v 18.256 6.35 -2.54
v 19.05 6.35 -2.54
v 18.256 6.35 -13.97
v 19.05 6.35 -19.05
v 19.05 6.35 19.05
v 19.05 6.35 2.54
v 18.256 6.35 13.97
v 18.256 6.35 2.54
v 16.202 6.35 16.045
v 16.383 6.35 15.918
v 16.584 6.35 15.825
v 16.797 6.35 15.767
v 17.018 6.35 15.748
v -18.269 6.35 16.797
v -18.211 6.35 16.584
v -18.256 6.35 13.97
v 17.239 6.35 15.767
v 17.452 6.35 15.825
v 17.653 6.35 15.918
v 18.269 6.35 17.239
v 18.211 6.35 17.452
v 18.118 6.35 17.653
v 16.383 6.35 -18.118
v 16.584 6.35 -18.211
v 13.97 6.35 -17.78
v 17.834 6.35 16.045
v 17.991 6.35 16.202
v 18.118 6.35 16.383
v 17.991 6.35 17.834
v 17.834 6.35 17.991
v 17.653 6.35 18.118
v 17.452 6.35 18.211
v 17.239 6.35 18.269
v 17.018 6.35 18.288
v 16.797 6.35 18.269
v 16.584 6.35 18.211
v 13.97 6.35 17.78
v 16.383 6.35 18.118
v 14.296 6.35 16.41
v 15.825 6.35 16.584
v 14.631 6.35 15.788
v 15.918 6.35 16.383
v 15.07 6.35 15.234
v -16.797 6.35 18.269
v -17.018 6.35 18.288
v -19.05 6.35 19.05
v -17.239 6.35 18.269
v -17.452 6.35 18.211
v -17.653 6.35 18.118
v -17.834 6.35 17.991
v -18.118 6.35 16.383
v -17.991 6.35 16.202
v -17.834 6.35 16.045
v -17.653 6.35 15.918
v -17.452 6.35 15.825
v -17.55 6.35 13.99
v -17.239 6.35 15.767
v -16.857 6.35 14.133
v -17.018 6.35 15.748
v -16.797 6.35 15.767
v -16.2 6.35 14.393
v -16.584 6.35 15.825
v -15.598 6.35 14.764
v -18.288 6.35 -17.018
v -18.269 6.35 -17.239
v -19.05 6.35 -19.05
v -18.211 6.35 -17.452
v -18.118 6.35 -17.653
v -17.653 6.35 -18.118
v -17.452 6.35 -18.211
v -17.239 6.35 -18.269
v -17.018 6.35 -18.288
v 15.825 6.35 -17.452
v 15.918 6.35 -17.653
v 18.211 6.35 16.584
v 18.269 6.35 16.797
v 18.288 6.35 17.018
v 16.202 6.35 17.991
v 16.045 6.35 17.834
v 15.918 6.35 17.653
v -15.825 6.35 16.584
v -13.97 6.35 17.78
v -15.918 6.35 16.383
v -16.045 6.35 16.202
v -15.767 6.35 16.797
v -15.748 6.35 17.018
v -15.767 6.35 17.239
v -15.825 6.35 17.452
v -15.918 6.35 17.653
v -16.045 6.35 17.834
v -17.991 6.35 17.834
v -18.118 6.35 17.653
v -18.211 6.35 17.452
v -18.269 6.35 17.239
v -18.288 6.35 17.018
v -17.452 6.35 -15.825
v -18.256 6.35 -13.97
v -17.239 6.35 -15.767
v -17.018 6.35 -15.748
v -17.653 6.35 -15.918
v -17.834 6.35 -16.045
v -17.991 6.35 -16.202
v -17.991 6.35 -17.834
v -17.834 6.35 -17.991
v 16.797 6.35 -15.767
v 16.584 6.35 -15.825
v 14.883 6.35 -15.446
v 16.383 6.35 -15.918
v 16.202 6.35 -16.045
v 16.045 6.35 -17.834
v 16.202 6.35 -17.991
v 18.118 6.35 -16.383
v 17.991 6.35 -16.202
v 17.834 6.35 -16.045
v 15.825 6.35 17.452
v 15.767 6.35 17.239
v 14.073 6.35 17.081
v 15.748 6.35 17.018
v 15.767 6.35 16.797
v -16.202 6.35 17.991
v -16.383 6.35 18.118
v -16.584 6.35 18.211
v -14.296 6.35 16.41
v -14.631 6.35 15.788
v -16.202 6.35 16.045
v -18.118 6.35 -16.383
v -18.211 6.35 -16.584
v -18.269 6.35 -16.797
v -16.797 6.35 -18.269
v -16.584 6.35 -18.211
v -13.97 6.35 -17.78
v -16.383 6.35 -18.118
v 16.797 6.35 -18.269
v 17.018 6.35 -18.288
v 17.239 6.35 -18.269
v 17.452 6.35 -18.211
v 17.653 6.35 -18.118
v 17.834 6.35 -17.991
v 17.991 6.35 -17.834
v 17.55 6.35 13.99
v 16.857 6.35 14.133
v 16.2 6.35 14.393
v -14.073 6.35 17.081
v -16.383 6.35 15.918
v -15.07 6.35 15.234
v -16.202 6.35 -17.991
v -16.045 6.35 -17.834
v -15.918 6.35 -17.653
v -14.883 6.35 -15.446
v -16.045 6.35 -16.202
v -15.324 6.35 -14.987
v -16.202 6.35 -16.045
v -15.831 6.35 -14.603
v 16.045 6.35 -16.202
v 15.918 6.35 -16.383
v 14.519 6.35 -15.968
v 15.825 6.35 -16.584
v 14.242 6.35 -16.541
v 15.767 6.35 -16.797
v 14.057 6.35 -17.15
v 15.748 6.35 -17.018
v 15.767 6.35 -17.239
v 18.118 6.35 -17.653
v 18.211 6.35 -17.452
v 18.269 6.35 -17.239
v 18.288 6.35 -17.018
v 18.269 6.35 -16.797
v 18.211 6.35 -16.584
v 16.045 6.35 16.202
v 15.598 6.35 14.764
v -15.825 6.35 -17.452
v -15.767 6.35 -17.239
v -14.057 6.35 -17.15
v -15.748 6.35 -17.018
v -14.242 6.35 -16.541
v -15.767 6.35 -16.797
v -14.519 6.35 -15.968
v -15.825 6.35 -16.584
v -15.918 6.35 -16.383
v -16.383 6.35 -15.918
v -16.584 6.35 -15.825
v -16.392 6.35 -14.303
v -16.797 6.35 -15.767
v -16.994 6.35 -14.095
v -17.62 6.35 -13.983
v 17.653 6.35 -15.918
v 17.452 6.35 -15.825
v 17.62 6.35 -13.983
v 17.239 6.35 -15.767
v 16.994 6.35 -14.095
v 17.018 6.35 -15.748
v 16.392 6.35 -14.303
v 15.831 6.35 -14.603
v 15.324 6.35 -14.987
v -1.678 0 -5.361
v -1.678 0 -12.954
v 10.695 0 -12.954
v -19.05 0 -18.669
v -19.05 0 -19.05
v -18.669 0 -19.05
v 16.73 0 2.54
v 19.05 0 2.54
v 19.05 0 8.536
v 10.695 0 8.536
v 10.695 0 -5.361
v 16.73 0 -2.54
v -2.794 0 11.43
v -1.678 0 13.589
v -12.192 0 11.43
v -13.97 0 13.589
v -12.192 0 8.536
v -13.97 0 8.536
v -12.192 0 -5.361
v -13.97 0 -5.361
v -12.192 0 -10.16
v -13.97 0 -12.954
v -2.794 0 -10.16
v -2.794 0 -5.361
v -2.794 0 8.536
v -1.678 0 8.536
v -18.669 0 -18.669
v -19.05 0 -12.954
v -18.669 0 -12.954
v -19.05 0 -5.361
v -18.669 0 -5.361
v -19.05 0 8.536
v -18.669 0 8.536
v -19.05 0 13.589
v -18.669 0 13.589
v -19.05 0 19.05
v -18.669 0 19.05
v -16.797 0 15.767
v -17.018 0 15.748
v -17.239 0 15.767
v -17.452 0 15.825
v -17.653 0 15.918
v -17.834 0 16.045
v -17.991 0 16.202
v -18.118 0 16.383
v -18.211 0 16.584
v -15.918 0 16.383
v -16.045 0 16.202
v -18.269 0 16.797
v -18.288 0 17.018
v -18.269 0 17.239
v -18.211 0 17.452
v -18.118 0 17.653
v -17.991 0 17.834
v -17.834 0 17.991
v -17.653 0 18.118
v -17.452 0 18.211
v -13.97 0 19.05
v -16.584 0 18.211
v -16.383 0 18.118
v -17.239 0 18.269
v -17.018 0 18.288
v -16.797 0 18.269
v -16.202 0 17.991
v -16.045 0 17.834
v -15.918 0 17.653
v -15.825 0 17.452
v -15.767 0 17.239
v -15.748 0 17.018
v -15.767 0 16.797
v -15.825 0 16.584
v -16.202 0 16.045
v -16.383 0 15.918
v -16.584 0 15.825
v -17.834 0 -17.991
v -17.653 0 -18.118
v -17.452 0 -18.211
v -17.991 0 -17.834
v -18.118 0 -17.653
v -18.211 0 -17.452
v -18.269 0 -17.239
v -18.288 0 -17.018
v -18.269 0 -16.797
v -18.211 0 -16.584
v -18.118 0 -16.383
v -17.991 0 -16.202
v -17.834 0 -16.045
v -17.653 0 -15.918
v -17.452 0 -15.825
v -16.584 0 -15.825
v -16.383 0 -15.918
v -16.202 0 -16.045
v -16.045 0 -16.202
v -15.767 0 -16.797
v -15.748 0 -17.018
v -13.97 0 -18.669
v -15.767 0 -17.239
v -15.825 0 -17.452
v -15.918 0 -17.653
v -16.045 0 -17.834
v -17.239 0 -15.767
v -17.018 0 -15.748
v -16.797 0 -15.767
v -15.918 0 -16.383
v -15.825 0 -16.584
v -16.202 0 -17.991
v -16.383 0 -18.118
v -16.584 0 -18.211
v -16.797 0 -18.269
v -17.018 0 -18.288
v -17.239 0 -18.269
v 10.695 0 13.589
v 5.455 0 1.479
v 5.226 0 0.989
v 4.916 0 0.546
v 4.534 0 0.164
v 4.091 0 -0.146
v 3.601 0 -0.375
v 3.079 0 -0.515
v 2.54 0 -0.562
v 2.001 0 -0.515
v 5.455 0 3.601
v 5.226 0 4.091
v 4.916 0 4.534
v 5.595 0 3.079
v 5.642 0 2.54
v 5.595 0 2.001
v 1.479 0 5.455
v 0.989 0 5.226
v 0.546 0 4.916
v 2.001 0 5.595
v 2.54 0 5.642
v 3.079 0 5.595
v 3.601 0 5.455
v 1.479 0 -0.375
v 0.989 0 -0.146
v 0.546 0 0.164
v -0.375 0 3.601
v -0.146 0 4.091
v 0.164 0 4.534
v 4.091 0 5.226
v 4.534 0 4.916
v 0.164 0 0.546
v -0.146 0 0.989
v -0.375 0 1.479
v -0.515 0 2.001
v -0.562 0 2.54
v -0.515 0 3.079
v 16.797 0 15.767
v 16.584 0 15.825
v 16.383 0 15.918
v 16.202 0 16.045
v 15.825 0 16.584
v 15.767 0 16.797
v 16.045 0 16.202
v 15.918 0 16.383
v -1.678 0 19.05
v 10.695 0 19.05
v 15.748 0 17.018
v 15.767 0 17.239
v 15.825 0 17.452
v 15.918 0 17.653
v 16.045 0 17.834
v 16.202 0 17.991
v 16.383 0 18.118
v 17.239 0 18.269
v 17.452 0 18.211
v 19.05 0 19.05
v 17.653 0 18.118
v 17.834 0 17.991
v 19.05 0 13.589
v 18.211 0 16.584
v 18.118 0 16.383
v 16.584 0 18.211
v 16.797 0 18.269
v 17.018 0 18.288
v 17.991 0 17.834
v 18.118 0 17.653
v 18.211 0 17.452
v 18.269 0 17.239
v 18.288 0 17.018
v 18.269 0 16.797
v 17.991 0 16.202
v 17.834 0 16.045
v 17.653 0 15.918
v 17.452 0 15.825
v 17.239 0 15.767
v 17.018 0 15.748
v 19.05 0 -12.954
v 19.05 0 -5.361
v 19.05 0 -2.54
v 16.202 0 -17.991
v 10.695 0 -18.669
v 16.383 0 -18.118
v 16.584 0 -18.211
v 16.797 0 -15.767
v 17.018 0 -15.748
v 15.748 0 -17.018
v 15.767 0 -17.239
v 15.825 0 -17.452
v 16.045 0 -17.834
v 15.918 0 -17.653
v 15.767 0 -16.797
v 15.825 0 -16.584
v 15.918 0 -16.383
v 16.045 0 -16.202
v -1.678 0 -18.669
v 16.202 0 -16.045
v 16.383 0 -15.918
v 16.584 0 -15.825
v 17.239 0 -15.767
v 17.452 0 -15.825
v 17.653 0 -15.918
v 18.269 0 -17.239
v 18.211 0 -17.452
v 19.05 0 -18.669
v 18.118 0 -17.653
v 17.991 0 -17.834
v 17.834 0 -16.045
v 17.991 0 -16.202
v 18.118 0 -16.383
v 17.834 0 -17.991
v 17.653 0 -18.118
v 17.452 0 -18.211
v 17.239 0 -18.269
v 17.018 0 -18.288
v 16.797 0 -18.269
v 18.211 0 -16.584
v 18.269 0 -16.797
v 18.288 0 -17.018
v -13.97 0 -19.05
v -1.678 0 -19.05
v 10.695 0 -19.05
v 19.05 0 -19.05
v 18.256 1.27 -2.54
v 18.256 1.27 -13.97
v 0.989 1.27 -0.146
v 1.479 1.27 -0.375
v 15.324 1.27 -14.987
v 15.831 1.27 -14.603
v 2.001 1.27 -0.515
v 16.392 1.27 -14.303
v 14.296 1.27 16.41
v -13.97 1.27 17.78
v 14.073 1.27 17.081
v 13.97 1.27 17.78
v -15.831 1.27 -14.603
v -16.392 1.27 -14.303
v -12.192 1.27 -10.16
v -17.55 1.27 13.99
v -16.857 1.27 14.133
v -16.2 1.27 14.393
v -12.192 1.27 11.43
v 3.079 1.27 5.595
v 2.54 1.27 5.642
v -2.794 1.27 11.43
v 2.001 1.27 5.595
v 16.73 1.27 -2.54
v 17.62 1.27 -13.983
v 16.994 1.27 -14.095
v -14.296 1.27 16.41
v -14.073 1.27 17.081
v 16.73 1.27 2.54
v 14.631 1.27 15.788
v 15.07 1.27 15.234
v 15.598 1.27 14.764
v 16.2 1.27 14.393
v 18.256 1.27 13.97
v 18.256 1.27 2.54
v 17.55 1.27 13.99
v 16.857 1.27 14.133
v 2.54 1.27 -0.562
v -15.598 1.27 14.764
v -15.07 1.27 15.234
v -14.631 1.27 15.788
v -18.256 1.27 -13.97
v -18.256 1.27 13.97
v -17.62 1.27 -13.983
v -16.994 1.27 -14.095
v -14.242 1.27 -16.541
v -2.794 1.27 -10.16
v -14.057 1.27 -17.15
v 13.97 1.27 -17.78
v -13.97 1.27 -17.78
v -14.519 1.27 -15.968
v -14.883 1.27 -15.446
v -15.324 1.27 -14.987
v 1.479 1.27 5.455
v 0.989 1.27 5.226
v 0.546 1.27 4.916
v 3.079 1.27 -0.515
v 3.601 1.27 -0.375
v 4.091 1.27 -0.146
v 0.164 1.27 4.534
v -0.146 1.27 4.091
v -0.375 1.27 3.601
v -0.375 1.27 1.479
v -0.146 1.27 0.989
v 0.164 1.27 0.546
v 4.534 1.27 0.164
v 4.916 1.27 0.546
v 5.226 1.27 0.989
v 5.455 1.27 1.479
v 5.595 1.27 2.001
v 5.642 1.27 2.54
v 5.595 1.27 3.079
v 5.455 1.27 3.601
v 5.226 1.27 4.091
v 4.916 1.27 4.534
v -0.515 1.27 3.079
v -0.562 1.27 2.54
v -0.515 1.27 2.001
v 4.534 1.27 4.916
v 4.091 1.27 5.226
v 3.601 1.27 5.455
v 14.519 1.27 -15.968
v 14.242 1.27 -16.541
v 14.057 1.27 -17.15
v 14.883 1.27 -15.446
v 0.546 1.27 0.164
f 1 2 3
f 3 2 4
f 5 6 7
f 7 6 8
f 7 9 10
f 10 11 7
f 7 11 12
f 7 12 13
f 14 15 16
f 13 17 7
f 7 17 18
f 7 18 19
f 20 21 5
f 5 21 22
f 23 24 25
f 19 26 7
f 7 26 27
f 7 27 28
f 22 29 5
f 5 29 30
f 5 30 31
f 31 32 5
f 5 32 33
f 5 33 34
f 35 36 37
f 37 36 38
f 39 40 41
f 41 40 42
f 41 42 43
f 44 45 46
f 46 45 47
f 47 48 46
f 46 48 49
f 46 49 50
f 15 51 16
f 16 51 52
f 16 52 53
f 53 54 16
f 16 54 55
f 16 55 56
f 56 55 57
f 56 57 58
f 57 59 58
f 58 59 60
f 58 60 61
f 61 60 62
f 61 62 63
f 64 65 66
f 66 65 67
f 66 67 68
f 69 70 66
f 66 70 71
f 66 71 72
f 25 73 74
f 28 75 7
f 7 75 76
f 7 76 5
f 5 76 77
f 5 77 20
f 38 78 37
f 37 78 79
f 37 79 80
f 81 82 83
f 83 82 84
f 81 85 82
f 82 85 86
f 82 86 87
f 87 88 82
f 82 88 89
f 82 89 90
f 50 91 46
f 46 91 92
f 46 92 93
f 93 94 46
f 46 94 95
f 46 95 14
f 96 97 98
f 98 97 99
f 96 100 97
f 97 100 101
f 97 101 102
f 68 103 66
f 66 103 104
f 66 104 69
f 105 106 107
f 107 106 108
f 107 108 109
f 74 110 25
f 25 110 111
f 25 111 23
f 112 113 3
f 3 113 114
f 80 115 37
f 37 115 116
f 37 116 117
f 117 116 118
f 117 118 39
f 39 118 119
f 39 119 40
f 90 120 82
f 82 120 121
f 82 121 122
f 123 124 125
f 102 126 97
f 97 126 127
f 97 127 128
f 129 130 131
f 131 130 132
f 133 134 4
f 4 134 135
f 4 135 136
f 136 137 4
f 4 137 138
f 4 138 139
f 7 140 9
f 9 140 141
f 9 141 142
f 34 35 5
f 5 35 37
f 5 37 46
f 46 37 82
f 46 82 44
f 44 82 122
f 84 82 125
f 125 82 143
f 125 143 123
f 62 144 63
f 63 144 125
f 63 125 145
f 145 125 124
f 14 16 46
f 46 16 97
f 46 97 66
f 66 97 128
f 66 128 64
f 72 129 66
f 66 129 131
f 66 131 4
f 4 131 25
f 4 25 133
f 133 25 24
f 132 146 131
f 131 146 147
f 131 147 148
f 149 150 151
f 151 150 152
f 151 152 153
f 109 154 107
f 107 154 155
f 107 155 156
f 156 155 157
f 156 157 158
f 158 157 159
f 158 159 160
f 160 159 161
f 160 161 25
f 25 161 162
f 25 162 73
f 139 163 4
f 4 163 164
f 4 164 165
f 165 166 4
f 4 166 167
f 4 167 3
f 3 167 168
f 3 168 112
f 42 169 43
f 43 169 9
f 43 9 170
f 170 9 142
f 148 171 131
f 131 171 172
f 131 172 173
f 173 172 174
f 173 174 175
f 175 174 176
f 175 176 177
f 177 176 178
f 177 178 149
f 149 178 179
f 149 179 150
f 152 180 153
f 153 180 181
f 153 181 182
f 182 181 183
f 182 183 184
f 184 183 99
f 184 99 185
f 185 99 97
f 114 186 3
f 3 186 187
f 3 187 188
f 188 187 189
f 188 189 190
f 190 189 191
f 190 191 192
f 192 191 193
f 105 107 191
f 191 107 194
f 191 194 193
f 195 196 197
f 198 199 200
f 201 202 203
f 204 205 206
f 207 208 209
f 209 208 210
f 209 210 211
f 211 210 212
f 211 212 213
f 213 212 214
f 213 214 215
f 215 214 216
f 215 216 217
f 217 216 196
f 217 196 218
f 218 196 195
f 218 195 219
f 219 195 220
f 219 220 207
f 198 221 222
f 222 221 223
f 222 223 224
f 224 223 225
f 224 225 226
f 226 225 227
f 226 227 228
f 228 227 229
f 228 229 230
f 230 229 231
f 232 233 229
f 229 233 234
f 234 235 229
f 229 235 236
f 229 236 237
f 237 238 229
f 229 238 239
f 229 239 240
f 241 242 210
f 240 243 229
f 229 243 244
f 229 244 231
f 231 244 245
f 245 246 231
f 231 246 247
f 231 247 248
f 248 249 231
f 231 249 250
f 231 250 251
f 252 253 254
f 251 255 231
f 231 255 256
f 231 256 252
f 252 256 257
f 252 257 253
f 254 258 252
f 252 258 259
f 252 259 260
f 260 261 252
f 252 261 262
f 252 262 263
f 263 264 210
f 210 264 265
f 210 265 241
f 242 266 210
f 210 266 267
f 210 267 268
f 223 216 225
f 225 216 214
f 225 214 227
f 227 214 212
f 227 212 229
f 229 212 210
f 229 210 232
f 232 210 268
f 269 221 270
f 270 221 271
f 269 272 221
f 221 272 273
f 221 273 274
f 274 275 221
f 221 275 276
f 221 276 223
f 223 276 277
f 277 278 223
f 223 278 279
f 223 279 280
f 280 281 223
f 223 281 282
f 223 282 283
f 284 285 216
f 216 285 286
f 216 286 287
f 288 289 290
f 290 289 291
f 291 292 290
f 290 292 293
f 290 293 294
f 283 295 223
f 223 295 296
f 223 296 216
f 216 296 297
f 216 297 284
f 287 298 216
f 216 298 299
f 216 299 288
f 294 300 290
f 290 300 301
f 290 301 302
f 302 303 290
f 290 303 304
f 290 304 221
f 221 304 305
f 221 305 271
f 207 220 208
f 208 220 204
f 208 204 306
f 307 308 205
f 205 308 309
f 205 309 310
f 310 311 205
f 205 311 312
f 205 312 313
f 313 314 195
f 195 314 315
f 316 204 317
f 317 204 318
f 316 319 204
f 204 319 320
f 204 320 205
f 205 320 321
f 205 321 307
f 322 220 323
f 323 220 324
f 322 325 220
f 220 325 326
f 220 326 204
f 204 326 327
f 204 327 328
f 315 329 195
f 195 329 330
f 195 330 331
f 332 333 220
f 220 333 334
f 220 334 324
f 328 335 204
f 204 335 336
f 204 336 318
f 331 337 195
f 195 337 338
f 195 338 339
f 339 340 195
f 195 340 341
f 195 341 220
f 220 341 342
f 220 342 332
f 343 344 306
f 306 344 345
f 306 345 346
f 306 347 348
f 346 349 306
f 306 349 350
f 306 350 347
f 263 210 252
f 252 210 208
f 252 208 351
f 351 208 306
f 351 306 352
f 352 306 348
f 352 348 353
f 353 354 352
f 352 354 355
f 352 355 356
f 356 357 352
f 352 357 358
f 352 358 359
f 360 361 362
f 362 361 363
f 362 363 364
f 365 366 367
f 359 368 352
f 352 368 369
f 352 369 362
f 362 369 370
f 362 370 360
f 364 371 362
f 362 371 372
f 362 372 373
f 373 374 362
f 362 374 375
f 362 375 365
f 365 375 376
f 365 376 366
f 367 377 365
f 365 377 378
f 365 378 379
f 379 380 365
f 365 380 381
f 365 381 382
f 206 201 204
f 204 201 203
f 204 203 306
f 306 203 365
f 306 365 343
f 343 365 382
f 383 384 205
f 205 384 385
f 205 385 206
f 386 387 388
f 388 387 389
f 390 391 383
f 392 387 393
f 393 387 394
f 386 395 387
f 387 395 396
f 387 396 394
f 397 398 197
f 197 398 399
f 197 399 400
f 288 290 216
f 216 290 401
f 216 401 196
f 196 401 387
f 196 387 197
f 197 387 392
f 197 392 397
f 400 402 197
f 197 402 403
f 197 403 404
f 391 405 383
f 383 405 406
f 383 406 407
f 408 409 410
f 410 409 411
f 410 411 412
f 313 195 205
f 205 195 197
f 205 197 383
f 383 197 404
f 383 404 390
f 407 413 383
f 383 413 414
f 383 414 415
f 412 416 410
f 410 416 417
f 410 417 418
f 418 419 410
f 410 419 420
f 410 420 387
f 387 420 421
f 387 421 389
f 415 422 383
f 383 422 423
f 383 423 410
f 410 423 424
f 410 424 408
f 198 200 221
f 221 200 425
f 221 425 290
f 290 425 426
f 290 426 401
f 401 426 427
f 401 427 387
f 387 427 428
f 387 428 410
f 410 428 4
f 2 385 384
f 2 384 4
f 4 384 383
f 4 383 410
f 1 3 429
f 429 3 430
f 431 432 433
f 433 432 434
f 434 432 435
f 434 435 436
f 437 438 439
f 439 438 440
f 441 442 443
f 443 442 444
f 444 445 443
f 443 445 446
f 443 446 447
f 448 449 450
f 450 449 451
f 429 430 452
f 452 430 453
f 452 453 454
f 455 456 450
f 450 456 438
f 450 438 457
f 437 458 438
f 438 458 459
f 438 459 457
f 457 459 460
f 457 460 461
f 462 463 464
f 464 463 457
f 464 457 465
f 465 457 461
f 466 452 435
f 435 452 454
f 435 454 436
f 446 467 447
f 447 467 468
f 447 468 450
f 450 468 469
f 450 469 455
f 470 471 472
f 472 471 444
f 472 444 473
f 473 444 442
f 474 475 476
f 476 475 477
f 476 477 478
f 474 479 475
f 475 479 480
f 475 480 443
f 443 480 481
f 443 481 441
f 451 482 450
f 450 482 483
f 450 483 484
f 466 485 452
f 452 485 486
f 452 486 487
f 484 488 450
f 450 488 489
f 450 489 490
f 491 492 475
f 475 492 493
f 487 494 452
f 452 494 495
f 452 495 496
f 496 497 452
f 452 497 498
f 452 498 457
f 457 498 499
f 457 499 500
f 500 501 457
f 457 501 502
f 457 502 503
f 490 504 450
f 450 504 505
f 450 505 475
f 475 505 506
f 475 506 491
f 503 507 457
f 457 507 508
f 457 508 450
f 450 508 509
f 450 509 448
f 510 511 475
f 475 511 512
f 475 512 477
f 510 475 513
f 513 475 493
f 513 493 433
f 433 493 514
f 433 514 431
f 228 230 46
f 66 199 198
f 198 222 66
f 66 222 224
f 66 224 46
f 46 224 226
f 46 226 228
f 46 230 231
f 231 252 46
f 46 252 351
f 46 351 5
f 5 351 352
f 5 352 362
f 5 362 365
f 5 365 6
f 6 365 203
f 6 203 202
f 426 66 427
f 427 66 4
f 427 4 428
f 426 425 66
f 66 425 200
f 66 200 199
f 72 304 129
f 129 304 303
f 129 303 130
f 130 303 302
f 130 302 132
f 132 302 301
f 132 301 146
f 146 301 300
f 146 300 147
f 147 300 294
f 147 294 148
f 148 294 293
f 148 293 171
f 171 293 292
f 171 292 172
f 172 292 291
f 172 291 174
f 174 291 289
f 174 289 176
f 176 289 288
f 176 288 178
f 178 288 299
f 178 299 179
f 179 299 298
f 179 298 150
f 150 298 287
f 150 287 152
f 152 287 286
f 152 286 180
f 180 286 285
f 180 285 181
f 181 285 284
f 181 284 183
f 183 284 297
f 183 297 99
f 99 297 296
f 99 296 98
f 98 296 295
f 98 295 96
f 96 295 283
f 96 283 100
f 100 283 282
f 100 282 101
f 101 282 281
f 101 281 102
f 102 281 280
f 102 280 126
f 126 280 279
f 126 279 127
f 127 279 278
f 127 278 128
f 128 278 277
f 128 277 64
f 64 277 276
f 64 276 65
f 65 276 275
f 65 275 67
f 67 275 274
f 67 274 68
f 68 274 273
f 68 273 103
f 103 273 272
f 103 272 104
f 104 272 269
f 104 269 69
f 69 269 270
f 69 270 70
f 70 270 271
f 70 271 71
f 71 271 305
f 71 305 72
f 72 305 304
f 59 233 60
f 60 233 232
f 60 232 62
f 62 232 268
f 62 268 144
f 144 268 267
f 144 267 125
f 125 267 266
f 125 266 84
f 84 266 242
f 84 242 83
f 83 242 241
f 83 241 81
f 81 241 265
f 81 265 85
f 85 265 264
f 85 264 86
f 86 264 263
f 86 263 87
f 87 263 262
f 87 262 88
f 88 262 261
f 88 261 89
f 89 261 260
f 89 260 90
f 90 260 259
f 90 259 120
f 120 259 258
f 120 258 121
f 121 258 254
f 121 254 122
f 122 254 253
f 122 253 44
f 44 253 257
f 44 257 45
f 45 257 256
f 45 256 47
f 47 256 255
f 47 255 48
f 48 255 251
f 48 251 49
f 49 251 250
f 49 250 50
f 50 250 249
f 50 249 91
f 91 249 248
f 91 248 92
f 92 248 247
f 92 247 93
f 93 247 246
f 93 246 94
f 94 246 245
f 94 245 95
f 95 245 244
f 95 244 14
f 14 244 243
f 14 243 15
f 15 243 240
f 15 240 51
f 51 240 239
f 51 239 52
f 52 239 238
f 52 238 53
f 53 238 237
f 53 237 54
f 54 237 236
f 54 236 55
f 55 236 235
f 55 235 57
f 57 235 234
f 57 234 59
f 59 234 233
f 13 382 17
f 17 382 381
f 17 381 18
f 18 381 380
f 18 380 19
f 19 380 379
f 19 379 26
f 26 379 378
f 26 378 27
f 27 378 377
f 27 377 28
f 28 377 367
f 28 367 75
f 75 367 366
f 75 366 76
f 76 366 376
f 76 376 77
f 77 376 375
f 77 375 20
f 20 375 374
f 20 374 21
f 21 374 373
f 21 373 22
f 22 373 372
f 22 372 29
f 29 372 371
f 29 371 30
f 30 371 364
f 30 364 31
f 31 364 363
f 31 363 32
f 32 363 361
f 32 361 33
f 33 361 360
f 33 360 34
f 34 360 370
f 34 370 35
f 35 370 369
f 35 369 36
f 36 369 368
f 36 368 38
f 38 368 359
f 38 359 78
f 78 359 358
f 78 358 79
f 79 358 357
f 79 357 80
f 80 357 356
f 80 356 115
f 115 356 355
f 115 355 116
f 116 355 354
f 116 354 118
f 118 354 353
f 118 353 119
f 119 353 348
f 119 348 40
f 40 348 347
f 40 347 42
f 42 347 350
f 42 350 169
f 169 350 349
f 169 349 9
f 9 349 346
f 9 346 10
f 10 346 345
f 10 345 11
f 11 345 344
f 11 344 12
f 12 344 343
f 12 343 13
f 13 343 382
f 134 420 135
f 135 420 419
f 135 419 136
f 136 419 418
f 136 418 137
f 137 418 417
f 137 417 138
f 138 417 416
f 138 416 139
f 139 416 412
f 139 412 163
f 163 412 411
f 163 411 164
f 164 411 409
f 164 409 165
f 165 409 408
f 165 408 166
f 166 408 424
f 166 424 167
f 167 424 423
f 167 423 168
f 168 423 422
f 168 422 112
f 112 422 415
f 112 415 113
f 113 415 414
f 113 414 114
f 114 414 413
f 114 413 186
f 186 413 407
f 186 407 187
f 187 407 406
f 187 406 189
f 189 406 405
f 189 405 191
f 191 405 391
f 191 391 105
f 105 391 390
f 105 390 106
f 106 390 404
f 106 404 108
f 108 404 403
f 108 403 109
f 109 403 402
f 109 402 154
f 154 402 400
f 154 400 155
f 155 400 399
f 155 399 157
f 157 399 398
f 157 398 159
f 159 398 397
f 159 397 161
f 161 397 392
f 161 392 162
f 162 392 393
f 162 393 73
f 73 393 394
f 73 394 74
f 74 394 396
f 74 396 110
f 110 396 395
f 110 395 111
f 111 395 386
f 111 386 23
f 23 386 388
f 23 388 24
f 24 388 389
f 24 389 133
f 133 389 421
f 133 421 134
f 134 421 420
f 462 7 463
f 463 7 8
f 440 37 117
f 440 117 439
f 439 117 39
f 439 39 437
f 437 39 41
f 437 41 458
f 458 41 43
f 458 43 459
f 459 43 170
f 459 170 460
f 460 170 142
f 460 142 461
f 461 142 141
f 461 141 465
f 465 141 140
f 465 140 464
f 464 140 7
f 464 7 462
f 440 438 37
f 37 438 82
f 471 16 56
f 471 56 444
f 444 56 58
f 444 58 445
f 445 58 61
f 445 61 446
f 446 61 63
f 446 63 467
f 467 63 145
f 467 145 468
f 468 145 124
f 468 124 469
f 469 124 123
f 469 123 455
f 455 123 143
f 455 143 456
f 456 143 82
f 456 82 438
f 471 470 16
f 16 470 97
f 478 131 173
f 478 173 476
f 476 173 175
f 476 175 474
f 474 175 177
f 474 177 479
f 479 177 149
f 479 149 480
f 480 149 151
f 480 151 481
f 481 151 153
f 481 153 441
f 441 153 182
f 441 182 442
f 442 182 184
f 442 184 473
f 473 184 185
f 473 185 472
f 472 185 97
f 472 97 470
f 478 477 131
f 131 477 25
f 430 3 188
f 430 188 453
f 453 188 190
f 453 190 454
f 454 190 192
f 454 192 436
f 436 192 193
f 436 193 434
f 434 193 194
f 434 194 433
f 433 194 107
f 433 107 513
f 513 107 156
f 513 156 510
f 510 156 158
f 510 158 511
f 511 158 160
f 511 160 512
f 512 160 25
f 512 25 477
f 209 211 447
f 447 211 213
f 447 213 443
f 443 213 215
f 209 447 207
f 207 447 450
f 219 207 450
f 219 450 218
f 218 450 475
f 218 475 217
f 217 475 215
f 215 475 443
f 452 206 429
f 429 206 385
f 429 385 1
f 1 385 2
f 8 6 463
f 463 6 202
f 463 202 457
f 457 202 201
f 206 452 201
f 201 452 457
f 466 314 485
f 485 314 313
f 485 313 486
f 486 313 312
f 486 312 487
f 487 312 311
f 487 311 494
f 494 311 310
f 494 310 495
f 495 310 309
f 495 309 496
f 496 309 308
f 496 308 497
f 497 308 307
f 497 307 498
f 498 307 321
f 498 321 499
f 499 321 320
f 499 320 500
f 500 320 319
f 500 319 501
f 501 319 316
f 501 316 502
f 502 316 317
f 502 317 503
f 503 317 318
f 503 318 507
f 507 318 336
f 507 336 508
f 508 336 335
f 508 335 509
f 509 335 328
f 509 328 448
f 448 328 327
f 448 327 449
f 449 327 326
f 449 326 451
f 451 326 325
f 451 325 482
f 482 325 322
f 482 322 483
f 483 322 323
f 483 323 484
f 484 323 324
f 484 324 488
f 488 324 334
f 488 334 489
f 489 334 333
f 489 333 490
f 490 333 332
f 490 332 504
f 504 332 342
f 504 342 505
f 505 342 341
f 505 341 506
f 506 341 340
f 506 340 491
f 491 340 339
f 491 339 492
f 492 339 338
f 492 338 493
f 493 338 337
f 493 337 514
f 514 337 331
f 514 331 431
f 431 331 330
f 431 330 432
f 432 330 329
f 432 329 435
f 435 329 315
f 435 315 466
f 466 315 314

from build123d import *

# Parameters (mm, degrees)
SKETCH1_W           = 38.1
SKETCH1_H           = 38.1
SKETCH1_R           = 1.27
BOSS_EXTRUDE1_DEPTH = 6.35
CUT_EXTRUDE1_DEPTH  = 5.08
CUT_EXTRUDE2_REACH  = 29.679
SKETCH3_W           = 9.398
SKETCH3_H           = 21.59
SKETCH4_W           = 2.320401775
SKETCH4_H           = 5.08
SKETCH4_R           = 3.101894328
CUT_EXTRUDE3_DEPTH  = 28.679008291


with BuildPart() as part:
    # Sketch1 → Boss-Extrude1 (new body)
    with BuildSketch(Plane(origin=(0, 0, 0), x_dir=(1, 0, 0), z_dir=(0, 1, 0))):
        Rectangle(SKETCH1_W, SKETCH1_H)
        with Locations(Location((-17.018, 17.018, 0), (0, 0, 270))):
            Circle(SKETCH1_R, mode=Mode.SUBTRACT)
        with Locations(Location((-17.018, -17.018, 0), (0, 0, 90))):
            Circle(SKETCH1_R, mode=Mode.SUBTRACT)
        with Locations(Location((17.018, -17.018, 0), (0, 0, 270))):
            Circle(SKETCH1_R, mode=Mode.SUBTRACT)
        with Locations(Location((17.018, 17.018, 0), (0, 0, 90))):
            Circle(SKETCH1_R, mode=Mode.SUBTRACT)
    extrude(amount=BOSS_EXTRUDE1_DEPTH)

    # Sketch2 → Cut-Extrude1 (cut)
    with BuildSketch(Plane(origin=(0, 6.35, 0), x_dir=(1, 0, 0), z_dir=(0, 1, 0))):
        with BuildLine():
            Line((18.256262039, 13.97), (18.256262039, -13.97))
            ThreePointArc((18.256262039, -13.97), (15.324054183, -14.987286066), (13.97, -17.78))
            Line((13.97, -17.78), (-13.97, -17.78))
            ThreePointArc((-13.97, -17.78), (-15.324054183, -14.987286066), (-18.256262039, -13.97))
            Line((-18.256262039, -13.97), (-18.256262039, 13.97))
            ThreePointArc((-18.256262039, 13.97), (-15.324054183, 14.987286066), (-13.97, 17.78))
            Line((-13.97, 17.78), (13.97, 17.78))
            ThreePointArc((13.97, 17.78), (15.324054183, 14.987286066), (18.256262039, 13.97))
        make_face()
    extrude(amount=-CUT_EXTRUDE1_DEPTH, mode=Mode.SUBTRACT)

    # Sketch3 → Cut-Extrude2 (cut, up to next)
    with BuildSketch(Plane.XZ, mode=Mode.PRIVATE) as cut_extrude2_sk1:
        with Locations((-7.493, 0.635)):
            Rectangle(SKETCH3_W, SKETCH3_H)
    cut_extrude2_tool1 = extrude(cut_extrude2_sk1.sketch, amount=-CUT_EXTRUDE2_REACH, mode=Mode.PRIVATE) & part.part
    add(cut_extrude2_tool1.solids().sort_by_distance((-7.493, 0, 0.635))[0], mode=Mode.SUBTRACT)

    # Sketch4 → Cut-Extrude3 (cut, through all)
    with BuildSketch(Plane.XZ):
        with Locations((20.210200888, 0)):
            Rectangle(SKETCH4_W, SKETCH4_H)
        with Locations((17.889799113, 0)):
            Rectangle(SKETCH4_W, SKETCH4_H)
        with Locations(Location((2.54, 2.54, 0), (0, 0, 270))):
            Circle(SKETCH4_R)
    extrude(amount=-CUT_EXTRUDE3_DEPTH, mode=Mode.SUBTRACT)


solid = part.part
